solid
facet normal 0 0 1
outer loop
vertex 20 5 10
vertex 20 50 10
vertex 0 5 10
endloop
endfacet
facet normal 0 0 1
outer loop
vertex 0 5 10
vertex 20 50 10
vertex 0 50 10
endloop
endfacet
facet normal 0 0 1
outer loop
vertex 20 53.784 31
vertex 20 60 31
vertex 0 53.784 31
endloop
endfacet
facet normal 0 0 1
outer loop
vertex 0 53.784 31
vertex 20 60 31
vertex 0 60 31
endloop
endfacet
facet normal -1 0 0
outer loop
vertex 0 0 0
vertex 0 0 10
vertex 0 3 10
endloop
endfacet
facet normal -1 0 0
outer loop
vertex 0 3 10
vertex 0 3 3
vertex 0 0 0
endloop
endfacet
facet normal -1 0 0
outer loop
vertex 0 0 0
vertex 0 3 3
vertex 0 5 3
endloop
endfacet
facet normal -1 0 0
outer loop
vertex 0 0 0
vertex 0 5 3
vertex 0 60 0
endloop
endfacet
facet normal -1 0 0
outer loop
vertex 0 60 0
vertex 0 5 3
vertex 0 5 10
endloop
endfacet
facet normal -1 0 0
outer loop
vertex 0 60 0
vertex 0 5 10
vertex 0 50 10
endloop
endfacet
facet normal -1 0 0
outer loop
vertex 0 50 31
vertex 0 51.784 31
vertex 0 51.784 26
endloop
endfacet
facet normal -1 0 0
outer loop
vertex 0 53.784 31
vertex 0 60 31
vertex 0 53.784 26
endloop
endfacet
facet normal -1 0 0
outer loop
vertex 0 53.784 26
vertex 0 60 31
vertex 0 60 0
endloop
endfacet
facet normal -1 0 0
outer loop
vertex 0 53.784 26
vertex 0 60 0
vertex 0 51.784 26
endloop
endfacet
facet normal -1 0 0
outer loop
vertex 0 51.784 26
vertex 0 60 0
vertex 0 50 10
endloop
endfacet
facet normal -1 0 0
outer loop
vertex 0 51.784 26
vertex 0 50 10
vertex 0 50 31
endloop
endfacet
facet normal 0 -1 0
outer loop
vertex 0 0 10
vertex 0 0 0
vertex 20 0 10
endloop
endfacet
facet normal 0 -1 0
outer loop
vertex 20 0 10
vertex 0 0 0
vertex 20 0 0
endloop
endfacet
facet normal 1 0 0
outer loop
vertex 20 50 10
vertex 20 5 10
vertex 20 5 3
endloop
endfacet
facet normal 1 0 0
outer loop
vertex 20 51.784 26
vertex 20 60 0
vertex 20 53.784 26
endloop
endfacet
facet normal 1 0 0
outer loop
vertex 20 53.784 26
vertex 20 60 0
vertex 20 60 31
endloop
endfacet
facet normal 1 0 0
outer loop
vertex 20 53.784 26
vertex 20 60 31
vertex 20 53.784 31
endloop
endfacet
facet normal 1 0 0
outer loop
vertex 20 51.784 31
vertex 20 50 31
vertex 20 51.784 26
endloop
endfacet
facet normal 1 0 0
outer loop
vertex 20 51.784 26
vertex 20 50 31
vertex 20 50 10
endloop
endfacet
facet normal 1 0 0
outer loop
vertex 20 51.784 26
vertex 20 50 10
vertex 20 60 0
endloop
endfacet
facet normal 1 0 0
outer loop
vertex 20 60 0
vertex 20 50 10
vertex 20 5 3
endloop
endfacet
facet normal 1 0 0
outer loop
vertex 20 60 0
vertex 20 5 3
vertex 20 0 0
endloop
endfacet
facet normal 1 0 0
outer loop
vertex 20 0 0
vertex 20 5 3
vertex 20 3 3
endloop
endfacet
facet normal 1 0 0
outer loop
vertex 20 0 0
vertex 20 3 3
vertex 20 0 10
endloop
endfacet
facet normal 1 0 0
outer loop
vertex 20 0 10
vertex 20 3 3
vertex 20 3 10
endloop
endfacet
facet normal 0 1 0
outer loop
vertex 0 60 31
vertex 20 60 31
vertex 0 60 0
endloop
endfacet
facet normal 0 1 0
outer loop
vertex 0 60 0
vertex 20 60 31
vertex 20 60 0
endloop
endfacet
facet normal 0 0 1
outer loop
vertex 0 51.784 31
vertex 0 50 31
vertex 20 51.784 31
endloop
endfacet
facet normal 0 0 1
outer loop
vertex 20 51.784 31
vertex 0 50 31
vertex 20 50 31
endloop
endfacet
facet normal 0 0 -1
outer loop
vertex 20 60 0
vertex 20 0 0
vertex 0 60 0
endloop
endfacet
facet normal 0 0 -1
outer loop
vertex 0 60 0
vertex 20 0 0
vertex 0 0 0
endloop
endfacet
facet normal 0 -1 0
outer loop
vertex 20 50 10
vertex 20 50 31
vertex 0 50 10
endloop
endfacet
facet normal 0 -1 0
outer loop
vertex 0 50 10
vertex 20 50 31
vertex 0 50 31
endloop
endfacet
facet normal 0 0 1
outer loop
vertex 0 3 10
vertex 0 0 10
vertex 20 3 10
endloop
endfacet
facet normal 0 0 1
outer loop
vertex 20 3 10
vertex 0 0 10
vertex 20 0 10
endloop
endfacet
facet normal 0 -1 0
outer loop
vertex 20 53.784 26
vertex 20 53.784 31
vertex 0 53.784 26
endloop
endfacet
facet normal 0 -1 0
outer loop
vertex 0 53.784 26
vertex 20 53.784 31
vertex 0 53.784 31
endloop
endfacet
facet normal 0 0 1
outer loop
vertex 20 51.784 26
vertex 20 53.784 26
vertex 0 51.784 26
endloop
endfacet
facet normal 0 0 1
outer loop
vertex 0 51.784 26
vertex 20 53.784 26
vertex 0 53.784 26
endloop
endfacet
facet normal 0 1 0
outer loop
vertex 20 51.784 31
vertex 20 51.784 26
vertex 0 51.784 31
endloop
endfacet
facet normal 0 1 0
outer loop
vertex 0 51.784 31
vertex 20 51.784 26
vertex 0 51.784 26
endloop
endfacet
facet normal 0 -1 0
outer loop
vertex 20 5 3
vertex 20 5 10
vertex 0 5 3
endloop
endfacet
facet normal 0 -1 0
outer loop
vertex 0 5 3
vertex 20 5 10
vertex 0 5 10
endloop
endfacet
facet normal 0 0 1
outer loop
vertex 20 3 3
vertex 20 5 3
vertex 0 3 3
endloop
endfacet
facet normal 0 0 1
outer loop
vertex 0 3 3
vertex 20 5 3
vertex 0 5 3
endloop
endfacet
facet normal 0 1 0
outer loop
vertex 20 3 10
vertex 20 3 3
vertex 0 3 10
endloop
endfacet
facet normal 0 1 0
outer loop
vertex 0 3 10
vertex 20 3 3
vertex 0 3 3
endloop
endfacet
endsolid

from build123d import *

# Parameters (mm, degrees)
CROQUIS1_W              = 20
CROQUIS1_H              = 60
SALIENTE_EXTRUIR1_DEPTH = 31
CORTAR_EXTRUIR1_REACH   = 72.434
CROQUIS2_W              = 21
CROQUIS2_H              = 50
CORTAR_EXTRUIR2_REACH   = 72.434
CROQUIS3_W              = 5
CROQUIS3_H              = 2
CORTAR_EXTRUIR3_REACH   = 72.434
CROQUIS4_W              = 7
CROQUIS4_H              = 2


with BuildPart() as part:
    # Croquis1 → Saliente-Extruir1 (new body)
    with BuildSketch(Plane.XY):
        with Locations((10, 30)):
            Rectangle(CROQUIS1_W, CROQUIS1_H)
    extrude(amount=SALIENTE_EXTRUIR1_DEPTH)

    # Croquis2 → Cortar-Extruir1 (cut, up to next)
    with BuildSketch(Plane(origin=(20, 0, 0), x_dir=(0, 0, -1), z_dir=(1, 0, 0)), mode=Mode.PRIVATE) as cortar_extruir1_sk1:
        with Locations((-20.5, 25)):
            Rectangle(CROQUIS2_W, CROQUIS2_H)
    cortar_extruir1_tool1 = extrude(cortar_extruir1_sk1.sketch, amount=-CORTAR_EXTRUIR1_REACH, mode=Mode.PRIVATE) & part.part
    add(cortar_extruir1_tool1.solids().sort_by_distance((20, 25, 20.5))[0], mode=Mode.SUBTRACT)

    # Croquis3 → Cortar-Extruir2 (cut, up to next)
    with BuildSketch(Plane(origin=(20, 0, 0), x_dir=(0, 0, -1), z_dir=(1, 0, 0)), mode=Mode.PRIVATE) as cortar_extruir2_sk1:
        with Locations((-28.5, 52.783625731)):
            Rectangle(CROQUIS3_W, CROQUIS3_H)
    cortar_extruir2_tool1 = extrude(cortar_extruir2_sk1.sketch, amount=-CORTAR_EXTRUIR2_REACH, mode=Mode.PRIVATE) & part.part
    add(cortar_extruir2_tool1.solids().sort_by_distance((20, 52.783626, 28.5))[0], mode=Mode.SUBTRACT)

    # Croquis4 → Cortar-Extruir3 (cut, up to next)
    with BuildSketch(Plane(origin=(20, 0, 0), x_dir=(0, 0, -1), z_dir=(1, 0, 0)), mode=Mode.PRIVATE) as cortar_extruir3_sk1:
        with Locations((-6.5, 4)):
            Rectangle(CROQUIS4_W, CROQUIS4_H)
    cortar_extruir3_tool1 = extrude(cortar_extruir3_sk1.sketch, amount=-CORTAR_EXTRUIR3_REACH, mode=Mode.PRIVATE) & part.part
    add(cortar_extruir3_tool1.solids().sort_by_distance((20, 4, 6.5))[0], mode=Mode.SUBTRACT)


solid = part.part
